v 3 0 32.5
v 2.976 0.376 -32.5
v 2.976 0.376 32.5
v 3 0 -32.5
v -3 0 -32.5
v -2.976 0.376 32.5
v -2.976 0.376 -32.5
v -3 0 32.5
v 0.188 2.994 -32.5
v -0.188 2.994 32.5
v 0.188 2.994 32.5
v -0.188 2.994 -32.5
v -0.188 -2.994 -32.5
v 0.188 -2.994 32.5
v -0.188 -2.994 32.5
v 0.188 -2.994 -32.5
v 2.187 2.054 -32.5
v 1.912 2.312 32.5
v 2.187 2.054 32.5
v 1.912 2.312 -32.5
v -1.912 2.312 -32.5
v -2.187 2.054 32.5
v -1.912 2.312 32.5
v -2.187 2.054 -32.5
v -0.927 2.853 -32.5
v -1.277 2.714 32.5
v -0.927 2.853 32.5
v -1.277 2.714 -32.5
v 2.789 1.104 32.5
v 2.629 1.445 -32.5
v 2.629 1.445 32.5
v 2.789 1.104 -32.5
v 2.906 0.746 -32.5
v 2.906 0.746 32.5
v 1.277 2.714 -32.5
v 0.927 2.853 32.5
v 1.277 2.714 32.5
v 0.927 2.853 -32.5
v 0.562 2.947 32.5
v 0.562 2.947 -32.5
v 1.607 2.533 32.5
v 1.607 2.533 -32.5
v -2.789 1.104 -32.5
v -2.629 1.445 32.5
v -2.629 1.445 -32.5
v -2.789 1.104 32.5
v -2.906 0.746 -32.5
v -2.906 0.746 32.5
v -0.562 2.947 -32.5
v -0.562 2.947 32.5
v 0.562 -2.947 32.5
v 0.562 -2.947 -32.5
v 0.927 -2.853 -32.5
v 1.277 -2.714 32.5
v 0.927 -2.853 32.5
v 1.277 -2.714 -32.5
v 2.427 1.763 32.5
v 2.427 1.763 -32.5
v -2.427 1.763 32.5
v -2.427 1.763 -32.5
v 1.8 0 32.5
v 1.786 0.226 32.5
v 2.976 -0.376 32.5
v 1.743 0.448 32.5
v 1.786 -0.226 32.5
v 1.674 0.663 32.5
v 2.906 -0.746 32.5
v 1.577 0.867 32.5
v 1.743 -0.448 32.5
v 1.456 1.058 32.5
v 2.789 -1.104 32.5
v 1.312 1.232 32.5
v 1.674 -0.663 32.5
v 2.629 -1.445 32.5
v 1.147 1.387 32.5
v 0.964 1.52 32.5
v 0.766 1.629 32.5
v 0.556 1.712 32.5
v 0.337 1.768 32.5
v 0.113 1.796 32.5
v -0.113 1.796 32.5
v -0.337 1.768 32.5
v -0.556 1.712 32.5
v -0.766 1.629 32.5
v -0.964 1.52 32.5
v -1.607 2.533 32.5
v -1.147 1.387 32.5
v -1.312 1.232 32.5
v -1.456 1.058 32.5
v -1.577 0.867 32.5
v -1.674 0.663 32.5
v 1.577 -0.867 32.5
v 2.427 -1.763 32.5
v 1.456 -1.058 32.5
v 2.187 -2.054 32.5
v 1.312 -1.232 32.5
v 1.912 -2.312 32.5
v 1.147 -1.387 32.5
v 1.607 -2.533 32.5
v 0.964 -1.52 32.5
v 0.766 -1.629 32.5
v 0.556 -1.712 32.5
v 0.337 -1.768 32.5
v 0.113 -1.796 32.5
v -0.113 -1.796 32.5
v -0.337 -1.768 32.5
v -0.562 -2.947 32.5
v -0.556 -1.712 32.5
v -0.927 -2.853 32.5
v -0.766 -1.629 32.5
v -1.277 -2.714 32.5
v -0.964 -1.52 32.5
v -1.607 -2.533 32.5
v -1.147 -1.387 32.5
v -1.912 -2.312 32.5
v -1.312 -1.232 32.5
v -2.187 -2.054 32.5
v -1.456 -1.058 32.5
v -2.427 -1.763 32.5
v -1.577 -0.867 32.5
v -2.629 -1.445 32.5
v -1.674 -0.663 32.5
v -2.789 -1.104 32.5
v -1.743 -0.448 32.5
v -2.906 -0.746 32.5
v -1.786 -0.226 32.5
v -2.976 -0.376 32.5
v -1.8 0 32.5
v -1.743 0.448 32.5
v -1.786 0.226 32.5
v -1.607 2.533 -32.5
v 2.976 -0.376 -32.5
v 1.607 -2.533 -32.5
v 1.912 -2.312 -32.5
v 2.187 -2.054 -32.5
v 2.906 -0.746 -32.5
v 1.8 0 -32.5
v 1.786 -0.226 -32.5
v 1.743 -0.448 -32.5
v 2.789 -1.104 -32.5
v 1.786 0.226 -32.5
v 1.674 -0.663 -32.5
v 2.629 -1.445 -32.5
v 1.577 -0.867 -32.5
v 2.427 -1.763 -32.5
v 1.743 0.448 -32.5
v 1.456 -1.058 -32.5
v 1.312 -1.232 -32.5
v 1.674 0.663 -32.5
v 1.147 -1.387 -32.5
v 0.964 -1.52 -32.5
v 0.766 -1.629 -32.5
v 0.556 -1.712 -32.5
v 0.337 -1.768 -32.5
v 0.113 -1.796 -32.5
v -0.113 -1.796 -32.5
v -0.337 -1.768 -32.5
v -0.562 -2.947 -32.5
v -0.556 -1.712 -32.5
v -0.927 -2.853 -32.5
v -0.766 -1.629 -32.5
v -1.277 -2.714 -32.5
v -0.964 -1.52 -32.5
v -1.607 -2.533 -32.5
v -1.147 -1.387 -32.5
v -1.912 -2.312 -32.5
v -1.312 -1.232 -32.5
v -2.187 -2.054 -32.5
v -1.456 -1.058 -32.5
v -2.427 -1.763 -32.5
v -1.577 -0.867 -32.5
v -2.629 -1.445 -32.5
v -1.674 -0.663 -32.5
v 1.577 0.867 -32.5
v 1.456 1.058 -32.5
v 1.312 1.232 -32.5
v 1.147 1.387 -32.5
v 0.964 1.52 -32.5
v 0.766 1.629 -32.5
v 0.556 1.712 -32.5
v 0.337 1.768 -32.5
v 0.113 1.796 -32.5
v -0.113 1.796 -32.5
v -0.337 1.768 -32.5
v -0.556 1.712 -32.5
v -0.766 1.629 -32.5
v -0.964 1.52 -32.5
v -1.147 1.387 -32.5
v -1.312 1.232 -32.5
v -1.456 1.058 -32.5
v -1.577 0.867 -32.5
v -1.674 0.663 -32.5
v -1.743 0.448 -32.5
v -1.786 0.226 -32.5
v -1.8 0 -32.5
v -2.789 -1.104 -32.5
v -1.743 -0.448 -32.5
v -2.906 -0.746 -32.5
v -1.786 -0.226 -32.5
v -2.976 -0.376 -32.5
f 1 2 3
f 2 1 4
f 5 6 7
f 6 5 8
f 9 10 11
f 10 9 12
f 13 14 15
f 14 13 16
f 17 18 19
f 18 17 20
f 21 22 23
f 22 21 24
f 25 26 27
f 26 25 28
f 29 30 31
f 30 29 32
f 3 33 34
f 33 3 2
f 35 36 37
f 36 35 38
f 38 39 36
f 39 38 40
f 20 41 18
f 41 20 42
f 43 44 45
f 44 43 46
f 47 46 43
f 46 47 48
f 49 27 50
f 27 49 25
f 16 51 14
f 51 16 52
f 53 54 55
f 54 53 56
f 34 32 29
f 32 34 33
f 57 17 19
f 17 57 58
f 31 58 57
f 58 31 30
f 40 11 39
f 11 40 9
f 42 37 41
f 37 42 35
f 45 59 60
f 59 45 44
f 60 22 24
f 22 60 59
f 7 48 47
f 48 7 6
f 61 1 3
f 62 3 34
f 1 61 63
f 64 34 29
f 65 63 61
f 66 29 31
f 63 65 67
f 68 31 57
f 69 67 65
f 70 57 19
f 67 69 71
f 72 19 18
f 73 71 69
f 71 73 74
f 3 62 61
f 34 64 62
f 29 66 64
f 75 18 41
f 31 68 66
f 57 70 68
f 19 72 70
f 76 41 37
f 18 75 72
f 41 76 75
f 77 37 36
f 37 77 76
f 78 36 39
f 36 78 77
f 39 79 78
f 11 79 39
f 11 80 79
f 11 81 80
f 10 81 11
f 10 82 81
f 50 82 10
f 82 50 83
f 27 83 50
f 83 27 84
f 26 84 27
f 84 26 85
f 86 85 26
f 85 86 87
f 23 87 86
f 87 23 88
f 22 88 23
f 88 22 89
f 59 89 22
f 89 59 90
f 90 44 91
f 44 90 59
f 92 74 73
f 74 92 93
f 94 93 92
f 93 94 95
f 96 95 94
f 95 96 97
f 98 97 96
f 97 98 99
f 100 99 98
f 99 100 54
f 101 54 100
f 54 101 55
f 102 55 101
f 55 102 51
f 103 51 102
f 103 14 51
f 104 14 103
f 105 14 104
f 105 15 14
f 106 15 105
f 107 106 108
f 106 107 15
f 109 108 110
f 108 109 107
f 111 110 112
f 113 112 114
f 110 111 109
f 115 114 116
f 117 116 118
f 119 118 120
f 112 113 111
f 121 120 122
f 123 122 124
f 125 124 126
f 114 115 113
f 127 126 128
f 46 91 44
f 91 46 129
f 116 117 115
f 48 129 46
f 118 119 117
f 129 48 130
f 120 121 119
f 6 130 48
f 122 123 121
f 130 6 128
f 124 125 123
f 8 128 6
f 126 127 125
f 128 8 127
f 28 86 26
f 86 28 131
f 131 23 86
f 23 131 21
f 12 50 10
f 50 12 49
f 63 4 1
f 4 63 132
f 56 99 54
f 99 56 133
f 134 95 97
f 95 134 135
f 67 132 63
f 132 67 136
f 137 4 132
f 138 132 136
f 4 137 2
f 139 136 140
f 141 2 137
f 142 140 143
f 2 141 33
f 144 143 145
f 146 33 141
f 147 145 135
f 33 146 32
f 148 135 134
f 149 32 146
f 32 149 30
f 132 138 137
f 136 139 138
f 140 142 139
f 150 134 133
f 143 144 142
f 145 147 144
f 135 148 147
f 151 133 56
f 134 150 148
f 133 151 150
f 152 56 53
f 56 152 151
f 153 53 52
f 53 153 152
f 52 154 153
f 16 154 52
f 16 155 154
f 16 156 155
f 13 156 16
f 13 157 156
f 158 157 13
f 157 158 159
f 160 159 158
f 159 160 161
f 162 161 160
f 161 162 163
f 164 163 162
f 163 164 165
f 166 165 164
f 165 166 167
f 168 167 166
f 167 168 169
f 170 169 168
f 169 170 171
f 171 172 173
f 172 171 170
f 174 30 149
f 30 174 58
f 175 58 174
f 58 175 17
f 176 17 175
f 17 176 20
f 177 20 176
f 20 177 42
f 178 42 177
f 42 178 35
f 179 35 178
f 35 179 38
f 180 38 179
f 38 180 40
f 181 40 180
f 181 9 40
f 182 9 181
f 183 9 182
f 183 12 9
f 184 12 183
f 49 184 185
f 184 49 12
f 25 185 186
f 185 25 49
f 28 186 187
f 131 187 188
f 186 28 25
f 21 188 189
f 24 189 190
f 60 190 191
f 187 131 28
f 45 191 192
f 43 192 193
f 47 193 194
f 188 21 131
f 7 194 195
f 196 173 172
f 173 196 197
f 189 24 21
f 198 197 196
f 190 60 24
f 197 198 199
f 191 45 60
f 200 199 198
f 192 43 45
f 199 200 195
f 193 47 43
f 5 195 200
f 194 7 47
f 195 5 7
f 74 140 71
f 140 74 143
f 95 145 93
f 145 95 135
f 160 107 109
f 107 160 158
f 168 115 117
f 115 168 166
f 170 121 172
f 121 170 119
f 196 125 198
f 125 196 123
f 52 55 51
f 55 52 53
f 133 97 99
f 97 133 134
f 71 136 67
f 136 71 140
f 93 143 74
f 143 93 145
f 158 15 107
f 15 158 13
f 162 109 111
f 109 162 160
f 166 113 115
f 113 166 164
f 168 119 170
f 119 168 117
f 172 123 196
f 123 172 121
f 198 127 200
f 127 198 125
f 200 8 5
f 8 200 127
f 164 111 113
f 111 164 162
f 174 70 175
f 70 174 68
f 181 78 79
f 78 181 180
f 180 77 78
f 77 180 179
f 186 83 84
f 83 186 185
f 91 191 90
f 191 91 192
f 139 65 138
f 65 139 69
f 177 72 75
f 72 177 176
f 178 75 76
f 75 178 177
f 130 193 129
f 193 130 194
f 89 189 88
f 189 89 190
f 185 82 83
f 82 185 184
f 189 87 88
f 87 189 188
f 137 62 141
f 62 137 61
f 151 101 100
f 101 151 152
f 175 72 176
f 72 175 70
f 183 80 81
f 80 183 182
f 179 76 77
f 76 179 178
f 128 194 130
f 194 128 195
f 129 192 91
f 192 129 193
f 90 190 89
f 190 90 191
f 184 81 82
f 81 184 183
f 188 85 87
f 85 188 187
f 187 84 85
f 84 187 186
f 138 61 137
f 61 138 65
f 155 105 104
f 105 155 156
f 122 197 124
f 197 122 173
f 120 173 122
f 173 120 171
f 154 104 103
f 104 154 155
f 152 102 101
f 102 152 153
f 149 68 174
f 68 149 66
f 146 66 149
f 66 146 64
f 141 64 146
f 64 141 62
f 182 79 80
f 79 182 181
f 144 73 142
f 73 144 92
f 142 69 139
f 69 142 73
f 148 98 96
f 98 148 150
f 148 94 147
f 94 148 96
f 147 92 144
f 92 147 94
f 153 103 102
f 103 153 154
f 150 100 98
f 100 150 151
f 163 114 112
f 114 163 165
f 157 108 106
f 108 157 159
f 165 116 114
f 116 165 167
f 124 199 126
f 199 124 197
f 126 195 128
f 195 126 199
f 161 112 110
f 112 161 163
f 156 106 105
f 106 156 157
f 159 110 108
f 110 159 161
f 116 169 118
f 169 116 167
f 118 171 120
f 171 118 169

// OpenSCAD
$fn = 50;


difference() {
	union() {
		translate(v = [0, 0, -32.5000000000]) {
			cylinder(h = 65, r = 3.0000000000);
		}
	}
	union() {
		translate(v = [0, 0, -100.0000000000]) {
			cylinder(h = 200, r = 1.8000000000);
		}
	}
}
